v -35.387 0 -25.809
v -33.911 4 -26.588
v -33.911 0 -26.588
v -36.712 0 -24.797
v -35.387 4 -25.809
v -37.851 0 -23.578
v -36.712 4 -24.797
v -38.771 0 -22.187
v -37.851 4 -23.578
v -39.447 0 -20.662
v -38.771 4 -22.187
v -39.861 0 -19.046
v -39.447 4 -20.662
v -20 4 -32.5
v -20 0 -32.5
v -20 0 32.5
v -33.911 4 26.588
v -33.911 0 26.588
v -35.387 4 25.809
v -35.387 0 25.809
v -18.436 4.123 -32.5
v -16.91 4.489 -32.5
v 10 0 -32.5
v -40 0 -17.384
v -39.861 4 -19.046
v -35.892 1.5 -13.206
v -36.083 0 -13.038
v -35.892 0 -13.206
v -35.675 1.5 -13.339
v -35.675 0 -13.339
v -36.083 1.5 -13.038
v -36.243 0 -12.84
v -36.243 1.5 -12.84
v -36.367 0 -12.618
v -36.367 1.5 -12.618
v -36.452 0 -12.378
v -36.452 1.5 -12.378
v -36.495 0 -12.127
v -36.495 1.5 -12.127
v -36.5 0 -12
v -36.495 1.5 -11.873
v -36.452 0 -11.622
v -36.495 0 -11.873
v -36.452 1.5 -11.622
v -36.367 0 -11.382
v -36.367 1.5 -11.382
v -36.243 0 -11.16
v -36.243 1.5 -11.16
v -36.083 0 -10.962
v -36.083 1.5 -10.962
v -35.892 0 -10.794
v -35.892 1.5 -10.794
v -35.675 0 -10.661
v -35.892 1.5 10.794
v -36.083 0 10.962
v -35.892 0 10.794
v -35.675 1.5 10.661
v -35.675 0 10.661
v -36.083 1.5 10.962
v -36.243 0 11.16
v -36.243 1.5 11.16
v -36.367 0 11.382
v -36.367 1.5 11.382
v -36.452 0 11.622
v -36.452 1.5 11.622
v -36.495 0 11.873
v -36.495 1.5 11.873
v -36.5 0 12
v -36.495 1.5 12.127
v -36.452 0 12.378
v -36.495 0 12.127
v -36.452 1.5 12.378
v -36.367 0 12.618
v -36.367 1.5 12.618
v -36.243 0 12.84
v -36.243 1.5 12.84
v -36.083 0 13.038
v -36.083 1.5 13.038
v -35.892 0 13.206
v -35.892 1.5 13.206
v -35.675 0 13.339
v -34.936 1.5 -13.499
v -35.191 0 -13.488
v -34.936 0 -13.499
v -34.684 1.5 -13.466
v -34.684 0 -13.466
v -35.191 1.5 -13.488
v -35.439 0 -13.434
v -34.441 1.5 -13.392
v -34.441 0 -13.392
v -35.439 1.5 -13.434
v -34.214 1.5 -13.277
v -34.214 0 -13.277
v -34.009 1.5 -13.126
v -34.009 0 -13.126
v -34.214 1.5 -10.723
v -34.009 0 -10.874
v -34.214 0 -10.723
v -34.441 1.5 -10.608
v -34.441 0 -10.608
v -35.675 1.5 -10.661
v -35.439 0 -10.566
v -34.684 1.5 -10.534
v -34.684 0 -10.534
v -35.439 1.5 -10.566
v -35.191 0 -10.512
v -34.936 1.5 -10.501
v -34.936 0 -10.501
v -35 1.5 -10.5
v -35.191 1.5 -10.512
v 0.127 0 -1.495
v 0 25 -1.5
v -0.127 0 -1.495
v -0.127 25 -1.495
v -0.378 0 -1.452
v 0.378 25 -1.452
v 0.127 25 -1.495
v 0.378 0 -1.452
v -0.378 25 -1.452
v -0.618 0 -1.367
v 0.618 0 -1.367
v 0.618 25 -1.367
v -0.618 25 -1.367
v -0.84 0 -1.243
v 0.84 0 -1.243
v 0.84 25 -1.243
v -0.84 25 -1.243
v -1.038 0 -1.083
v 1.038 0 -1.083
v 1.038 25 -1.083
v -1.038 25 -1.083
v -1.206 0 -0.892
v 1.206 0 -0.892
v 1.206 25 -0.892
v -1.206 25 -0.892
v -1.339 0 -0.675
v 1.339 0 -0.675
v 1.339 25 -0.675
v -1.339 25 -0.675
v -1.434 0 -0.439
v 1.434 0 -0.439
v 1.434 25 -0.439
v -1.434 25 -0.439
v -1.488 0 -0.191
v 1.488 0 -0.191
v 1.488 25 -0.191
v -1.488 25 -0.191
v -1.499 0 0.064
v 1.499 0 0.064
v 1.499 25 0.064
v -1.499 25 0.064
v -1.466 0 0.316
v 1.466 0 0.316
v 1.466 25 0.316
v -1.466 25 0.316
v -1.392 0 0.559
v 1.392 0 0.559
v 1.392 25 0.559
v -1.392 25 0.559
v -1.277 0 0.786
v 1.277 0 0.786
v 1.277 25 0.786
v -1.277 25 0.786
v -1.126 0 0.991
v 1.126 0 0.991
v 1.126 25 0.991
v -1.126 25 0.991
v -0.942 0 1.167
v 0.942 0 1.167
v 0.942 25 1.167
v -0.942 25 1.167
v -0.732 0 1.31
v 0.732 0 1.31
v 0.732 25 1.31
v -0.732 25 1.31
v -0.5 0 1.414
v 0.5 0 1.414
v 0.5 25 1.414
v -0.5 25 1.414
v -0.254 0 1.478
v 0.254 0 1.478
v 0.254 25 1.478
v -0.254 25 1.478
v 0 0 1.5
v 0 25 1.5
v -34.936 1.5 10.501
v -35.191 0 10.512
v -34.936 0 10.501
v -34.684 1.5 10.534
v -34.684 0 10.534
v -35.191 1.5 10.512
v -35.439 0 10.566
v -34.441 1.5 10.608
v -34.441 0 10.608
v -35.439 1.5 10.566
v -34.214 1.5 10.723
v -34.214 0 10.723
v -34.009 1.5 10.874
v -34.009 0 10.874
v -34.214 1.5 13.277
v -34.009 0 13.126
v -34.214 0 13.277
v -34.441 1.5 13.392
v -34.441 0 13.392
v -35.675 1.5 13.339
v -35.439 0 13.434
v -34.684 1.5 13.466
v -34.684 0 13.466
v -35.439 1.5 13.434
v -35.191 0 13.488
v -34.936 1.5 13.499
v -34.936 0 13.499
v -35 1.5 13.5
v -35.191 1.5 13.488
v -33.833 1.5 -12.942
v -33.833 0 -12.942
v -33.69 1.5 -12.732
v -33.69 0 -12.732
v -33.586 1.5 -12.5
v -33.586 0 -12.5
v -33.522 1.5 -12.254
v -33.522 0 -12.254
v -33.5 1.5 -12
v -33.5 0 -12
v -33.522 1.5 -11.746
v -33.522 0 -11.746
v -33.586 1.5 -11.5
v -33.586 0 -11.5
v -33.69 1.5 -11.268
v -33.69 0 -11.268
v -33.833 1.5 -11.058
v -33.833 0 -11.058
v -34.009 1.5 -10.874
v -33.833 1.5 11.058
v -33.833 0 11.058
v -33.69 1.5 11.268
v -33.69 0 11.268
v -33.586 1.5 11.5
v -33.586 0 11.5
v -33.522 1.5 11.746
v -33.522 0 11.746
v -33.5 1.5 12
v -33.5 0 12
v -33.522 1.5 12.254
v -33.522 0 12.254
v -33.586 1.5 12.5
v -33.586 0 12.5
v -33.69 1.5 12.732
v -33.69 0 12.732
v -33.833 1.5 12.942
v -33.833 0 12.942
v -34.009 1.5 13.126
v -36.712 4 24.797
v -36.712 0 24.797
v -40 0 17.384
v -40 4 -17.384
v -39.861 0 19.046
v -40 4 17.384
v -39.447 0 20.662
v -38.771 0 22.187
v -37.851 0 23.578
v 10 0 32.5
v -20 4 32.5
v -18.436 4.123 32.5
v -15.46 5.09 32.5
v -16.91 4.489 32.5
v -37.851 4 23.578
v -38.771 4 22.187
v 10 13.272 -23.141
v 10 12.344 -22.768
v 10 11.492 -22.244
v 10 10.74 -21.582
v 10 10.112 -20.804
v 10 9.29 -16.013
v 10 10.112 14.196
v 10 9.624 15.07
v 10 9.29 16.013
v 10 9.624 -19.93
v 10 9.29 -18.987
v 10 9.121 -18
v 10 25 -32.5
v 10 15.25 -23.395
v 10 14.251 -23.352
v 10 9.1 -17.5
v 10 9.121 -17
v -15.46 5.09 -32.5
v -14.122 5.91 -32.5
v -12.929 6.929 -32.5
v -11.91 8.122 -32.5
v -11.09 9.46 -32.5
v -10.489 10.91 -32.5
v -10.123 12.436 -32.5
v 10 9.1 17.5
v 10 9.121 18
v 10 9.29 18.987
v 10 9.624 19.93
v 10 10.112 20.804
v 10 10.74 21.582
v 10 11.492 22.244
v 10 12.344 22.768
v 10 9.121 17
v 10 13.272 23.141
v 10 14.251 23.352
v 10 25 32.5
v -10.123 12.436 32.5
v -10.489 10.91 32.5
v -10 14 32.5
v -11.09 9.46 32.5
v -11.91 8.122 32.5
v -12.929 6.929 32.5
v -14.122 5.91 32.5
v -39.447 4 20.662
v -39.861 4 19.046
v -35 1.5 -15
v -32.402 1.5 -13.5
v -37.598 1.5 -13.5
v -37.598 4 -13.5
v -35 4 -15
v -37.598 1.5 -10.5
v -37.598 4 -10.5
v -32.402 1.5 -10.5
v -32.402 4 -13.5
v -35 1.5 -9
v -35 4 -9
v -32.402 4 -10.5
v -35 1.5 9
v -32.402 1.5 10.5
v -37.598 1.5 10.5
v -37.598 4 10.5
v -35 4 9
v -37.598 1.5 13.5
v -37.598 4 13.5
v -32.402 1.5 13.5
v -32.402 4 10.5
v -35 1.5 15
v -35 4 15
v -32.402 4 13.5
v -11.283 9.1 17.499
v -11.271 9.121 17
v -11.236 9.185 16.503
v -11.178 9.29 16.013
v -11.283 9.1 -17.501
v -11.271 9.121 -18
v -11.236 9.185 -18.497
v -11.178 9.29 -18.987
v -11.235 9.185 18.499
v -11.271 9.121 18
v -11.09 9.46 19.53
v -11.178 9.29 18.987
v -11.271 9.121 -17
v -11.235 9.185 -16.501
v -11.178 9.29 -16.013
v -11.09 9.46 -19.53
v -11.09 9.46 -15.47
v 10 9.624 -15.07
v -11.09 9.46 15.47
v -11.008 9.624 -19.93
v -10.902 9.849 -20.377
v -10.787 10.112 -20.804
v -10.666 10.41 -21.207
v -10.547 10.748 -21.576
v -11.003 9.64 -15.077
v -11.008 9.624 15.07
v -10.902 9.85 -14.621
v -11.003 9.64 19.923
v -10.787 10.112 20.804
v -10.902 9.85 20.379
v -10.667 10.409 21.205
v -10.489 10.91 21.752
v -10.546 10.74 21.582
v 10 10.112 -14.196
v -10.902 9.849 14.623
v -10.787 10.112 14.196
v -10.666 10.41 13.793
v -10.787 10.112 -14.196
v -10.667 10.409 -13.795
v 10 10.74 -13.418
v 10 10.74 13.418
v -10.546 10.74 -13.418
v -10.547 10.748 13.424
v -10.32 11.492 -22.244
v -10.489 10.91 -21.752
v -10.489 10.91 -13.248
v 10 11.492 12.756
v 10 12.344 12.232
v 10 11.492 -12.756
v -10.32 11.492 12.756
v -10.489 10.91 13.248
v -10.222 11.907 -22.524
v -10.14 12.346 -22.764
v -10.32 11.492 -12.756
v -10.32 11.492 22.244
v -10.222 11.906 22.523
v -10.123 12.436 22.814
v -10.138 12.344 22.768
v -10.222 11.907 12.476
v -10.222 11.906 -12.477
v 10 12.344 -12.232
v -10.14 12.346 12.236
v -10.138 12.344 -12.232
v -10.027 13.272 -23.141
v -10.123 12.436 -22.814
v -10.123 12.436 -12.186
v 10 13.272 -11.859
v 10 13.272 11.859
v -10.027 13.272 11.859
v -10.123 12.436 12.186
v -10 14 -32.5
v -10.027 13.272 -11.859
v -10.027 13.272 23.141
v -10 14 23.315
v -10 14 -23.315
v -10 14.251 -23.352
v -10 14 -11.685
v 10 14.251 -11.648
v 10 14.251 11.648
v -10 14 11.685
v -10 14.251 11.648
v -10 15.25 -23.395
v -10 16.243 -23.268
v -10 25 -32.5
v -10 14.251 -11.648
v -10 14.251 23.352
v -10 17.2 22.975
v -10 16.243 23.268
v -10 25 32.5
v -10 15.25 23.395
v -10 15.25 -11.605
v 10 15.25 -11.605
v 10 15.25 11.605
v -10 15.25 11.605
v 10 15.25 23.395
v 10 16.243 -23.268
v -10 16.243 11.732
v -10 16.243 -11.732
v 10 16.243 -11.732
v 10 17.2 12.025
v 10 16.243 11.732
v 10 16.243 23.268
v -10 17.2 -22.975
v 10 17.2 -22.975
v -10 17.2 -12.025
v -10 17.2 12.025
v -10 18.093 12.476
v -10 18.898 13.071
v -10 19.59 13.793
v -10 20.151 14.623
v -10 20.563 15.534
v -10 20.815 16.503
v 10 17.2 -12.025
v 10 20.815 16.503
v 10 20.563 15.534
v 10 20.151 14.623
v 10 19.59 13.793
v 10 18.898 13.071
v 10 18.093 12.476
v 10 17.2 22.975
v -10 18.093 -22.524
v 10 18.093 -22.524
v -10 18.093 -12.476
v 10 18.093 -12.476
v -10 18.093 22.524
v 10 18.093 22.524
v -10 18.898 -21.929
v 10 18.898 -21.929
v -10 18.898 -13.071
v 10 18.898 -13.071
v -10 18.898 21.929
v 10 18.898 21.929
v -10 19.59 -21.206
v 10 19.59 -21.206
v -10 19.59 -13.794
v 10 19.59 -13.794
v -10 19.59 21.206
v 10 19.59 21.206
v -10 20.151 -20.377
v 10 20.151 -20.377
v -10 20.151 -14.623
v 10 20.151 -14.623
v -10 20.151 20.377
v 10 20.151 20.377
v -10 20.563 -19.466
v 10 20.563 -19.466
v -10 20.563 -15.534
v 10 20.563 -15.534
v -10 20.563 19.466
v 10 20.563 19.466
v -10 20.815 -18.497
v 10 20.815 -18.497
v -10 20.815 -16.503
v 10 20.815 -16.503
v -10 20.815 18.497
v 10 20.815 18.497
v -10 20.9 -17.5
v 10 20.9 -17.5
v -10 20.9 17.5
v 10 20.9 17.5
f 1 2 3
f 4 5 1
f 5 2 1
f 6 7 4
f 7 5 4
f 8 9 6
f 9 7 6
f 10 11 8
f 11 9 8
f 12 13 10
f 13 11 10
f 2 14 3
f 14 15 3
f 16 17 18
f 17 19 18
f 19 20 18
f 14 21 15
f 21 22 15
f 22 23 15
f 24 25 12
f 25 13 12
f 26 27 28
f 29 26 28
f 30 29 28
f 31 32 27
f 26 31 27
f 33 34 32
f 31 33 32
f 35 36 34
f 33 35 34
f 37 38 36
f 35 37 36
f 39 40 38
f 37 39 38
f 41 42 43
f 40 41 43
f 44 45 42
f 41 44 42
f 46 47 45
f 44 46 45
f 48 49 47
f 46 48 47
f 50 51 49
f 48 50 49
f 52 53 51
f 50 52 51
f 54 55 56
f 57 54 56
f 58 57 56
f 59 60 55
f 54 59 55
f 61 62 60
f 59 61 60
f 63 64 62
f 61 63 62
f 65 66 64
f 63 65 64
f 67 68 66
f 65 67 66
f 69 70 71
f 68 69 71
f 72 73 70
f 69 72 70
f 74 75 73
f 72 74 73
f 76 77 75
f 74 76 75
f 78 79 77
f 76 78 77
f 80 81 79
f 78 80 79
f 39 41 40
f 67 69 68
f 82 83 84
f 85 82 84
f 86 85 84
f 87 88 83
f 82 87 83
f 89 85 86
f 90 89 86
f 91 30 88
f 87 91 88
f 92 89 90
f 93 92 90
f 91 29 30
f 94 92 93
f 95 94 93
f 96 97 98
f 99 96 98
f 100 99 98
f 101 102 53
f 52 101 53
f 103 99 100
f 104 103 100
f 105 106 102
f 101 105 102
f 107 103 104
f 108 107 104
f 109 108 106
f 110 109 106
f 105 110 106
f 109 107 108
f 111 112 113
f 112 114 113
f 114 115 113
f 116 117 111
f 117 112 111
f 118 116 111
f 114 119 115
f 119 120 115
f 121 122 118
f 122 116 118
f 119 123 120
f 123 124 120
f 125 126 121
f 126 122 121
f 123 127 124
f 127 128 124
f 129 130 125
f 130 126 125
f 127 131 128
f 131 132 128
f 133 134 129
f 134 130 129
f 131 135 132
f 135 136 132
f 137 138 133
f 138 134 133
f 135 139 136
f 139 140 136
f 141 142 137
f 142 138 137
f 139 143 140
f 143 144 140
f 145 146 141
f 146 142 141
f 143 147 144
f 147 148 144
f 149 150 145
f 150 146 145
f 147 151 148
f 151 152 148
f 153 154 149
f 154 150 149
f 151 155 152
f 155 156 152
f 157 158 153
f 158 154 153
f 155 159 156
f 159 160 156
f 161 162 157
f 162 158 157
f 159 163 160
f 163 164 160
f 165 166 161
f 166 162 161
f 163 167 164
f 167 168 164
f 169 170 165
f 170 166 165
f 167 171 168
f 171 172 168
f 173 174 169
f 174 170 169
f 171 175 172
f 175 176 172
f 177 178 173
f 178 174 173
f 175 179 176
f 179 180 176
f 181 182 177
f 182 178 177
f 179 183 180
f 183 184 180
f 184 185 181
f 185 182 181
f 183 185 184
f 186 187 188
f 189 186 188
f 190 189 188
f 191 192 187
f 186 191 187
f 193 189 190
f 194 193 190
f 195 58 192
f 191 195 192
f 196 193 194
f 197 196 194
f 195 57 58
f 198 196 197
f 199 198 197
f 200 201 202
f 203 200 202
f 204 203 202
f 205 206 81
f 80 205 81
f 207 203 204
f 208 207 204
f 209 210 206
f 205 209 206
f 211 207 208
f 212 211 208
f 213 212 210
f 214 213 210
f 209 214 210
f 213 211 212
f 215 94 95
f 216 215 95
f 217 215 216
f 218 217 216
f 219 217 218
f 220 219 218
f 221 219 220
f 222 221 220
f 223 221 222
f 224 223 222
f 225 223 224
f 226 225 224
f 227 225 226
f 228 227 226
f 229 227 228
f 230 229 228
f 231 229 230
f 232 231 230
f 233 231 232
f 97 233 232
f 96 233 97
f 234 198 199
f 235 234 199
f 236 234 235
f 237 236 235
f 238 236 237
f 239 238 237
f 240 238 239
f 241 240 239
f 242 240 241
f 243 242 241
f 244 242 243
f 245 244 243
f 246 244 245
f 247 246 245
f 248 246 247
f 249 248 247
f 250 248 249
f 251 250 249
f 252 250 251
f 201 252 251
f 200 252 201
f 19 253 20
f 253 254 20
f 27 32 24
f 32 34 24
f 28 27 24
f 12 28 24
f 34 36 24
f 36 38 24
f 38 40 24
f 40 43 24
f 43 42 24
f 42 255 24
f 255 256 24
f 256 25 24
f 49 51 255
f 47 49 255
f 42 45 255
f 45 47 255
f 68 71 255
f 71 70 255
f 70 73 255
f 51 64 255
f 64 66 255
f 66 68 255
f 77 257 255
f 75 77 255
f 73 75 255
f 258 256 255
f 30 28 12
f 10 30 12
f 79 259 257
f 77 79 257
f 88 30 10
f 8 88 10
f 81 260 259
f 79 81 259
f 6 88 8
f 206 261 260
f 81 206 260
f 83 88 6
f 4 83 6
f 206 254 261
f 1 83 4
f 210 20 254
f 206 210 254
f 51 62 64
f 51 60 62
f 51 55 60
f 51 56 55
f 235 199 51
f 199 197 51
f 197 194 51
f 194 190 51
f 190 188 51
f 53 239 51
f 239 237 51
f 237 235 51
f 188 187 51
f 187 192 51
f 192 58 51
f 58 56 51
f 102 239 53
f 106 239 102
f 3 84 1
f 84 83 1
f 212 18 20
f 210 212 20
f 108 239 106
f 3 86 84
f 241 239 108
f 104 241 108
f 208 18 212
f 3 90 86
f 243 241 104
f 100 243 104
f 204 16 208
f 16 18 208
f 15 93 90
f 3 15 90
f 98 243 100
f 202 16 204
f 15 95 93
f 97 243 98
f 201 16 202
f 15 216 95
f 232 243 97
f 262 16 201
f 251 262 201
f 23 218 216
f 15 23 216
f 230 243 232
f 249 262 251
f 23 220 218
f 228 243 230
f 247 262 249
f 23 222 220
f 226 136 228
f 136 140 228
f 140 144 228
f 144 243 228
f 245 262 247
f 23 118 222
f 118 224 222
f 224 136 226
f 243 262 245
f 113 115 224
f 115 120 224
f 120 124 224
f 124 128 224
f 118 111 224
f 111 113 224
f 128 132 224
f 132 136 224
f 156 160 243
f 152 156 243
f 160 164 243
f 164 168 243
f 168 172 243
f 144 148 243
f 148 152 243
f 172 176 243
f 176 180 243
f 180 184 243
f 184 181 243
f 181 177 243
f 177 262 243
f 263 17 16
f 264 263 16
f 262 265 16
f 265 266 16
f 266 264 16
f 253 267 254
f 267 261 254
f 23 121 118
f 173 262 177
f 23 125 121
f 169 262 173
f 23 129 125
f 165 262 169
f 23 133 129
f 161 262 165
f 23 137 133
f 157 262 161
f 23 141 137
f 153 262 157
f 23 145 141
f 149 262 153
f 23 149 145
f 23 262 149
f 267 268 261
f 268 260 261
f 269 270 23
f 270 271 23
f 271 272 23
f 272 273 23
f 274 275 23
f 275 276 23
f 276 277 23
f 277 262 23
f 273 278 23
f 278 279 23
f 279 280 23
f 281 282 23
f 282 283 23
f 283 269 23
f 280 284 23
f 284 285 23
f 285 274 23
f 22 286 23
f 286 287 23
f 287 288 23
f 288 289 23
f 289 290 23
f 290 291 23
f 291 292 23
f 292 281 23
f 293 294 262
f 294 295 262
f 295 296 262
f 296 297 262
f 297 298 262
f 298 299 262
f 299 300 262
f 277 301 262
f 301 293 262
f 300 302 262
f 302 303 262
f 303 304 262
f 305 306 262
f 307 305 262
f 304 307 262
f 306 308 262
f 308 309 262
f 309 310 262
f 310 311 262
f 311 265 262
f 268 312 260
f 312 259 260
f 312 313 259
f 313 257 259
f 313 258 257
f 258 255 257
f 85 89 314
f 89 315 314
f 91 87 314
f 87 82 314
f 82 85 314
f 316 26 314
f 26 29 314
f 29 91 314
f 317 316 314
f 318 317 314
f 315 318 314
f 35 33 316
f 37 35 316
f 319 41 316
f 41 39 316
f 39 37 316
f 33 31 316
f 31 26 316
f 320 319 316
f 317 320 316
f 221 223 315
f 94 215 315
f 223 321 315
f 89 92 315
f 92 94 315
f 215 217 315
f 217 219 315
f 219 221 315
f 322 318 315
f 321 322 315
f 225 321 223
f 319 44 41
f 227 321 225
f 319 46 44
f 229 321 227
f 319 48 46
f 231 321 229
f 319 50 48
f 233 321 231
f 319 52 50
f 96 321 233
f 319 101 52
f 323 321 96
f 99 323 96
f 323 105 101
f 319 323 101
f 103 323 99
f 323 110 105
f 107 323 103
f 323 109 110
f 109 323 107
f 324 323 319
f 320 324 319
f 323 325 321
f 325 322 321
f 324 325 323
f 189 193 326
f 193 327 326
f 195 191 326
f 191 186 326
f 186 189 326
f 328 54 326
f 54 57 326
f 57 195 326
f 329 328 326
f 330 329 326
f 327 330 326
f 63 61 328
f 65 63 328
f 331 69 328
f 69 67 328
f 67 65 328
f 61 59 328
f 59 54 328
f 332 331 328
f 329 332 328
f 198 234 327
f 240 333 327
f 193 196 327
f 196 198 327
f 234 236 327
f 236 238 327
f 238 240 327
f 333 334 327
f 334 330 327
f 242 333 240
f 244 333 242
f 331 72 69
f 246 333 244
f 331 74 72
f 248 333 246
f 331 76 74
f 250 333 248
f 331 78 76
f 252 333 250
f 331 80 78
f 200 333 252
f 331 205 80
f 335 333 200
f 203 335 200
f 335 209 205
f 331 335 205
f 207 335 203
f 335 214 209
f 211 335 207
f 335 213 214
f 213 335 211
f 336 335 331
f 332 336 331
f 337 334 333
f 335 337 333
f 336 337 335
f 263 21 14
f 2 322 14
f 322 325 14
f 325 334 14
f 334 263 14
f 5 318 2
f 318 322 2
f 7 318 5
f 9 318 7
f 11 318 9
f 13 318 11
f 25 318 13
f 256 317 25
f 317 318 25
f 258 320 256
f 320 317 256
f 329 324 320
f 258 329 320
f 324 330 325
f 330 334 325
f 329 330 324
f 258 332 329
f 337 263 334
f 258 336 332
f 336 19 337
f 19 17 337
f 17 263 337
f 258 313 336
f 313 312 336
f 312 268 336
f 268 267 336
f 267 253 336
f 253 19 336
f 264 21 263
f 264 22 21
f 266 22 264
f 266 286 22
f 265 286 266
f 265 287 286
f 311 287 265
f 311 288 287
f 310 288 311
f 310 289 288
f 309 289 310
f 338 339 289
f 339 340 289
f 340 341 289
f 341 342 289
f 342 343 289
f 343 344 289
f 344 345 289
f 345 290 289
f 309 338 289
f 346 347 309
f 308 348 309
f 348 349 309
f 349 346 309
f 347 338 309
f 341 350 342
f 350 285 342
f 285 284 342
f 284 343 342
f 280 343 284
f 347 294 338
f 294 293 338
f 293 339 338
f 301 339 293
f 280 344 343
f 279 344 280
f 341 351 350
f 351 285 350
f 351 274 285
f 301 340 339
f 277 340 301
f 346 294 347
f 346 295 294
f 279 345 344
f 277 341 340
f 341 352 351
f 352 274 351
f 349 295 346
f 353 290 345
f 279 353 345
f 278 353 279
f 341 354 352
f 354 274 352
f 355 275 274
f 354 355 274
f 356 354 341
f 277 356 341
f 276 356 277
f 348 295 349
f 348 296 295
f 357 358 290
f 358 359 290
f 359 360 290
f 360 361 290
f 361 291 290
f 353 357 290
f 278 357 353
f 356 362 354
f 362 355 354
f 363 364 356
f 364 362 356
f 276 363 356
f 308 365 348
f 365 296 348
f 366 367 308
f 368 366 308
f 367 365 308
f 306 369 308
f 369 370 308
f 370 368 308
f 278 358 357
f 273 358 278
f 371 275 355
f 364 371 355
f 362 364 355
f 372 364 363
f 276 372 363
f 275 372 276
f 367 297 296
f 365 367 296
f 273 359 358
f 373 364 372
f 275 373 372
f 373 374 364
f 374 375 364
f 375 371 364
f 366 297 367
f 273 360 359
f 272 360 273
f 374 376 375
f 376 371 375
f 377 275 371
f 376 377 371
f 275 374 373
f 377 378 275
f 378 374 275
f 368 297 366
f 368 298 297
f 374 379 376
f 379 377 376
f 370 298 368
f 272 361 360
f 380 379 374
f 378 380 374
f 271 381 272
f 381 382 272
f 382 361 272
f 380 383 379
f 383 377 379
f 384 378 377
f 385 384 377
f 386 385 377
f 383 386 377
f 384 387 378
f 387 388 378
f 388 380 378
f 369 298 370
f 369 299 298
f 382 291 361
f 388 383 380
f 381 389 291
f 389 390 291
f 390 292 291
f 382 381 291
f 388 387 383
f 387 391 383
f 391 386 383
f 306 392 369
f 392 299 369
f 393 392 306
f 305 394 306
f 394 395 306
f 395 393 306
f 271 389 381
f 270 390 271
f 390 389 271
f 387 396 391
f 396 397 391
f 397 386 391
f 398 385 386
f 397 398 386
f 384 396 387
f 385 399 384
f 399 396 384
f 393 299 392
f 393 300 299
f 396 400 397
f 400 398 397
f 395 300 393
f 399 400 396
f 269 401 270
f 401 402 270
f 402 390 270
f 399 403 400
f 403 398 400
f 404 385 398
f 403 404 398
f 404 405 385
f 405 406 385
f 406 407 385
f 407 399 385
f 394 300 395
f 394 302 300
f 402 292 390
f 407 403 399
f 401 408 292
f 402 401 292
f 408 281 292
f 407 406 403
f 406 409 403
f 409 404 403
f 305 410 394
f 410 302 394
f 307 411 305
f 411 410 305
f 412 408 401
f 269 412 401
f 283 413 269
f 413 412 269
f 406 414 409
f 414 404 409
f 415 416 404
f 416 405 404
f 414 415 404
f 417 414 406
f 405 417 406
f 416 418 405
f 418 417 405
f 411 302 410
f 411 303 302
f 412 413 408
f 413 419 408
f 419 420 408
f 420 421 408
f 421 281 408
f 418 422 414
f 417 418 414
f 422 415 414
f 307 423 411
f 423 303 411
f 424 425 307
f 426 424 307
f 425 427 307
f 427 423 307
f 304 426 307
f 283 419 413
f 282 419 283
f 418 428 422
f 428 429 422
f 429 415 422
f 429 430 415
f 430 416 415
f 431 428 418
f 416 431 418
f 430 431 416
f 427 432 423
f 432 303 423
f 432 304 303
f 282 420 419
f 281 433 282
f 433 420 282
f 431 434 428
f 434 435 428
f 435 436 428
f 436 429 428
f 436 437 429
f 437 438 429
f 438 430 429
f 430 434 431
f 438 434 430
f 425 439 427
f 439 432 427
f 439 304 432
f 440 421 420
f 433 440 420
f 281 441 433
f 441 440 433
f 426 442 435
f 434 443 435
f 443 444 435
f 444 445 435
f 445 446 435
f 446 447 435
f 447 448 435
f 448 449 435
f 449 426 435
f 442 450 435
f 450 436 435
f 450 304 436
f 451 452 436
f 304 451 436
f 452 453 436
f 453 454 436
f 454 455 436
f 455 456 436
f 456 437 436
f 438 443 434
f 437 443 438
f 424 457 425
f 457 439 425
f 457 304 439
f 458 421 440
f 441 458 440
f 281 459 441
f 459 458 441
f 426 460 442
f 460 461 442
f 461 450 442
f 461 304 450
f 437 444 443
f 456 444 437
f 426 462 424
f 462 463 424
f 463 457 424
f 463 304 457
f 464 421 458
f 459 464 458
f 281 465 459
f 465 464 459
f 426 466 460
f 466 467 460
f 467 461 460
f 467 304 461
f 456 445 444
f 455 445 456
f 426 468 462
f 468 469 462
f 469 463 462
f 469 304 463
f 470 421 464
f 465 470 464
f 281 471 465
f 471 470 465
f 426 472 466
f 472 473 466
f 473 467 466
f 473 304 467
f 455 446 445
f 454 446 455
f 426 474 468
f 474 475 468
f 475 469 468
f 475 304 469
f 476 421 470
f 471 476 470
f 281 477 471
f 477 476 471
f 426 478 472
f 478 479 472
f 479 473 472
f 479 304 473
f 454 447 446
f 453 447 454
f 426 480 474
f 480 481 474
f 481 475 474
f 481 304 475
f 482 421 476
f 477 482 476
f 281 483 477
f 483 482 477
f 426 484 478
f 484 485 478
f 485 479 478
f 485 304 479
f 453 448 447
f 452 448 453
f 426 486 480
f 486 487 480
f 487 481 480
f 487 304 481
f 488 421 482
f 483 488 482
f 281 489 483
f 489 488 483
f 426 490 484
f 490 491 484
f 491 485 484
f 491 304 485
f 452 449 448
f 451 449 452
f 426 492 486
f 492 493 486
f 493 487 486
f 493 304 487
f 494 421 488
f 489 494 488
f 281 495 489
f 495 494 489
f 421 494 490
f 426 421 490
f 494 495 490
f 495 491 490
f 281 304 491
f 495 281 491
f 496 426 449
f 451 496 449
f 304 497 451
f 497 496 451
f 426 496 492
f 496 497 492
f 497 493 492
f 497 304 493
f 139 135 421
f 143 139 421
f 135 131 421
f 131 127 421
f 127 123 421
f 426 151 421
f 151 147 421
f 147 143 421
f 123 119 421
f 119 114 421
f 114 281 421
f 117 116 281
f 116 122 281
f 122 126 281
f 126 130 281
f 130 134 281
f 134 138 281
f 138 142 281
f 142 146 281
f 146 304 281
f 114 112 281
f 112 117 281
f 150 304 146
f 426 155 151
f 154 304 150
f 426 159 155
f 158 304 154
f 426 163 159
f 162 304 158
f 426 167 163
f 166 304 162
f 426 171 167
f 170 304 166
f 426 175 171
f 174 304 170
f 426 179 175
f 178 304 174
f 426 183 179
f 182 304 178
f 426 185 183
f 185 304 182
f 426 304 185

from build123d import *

# Parameters (mm, degrees)
BOSS_EXTRUDE1_DEPTH     = 32.5
CUT_EXTRUDE1_DEPTH      = 65.662585782
CUT_EXTRUDE1_DEPTH_BACK = 65.662585782
SKETCH2_R               = 5.9
CUT_EXTRUDE2_DEPTH      = 58.282196244
CUT_EXTRUDE2_DEPTH_BACK = 58.282196244
SKETCH3_R               = 1.5
CUT_EXTRUDE3_DEPTH      = 58.282196244
CUT_EXTRUDE3_DEPTH_BACK = 58.282196244
SKETCH4_R               = 1.5
CUT_EXTRUDE4_DEPTH      = 2.5
CUT_EXTRUDE5_DEPTH      = 56.652942478
CUT_EXTRUDE5_DEPTH_BACK = 56.652942478
FILLET1_R               = 10


with BuildPart() as part:
    # Sketch1 → Boss-Extrude1 (new, symmetric)
    with BuildSketch(Plane.XY):
        with BuildLine():
            Line((-40, 0), (-40, 4))
            Line((-40, 4), (-20, 4))
            ThreePointArc((-20, 4), (-12.928932188, 6.928932188), (-10, 14))
            Line((-10, 14), (-10, 25))
            Line((-10, 25), (10, 25))
            Line((10, 25), (10, 14))
            Line((10, 14), (10, 0))
            Line((10, 0), (-40, 0))
        make_face()
    extrude(amount=BOSS_EXTRUDE1_DEPTH, both=True)

    # Sketch2 → Cut-Extrude1 (cut, two sides: drawn at the far end of the back side and taken through both)
    with BuildSketch(Plane(origin=(10, 0, 0), x_dir=(0, 0, -1), z_dir=(1, 0, 0)).offset(-CUT_EXTRUDE1_DEPTH_BACK)):
        with Locations(Location((-17.5, 15, 0), (0, 0, 350.241743405))):
            Circle(SKETCH2_R)
        with Locations(Location((17.5, 15, 0), (0, 0, 350.241743405))):
            Circle(SKETCH2_R)
    extrude(amount=CUT_EXTRUDE1_DEPTH + CUT_EXTRUDE1_DEPTH_BACK, mode=Mode.SUBTRACT)

    # Sketch3 → Cut-Extrude2 (cut, two sides: drawn at the far end of the back side and taken through both)
    with BuildSketch(Plane.XZ.offset(-CUT_EXTRUDE2_DEPTH_BACK)):
        with Locations((-35, 12)):
            Circle(SKETCH3_R)
        with Locations((-35, -12)):
            Circle(SKETCH3_R)
    extrude(amount=CUT_EXTRUDE2_DEPTH + CUT_EXTRUDE2_DEPTH_BACK, mode=Mode.SUBTRACT)

    # Sketch4 → Cut-Extrude3 (cut, two sides: drawn at the far end of the back side and taken through both)
    with BuildSketch(Plane(origin=(0, 25, 0), x_dir=(1, 0, 0), z_dir=(0, 1, 0)).offset(-CUT_EXTRUDE3_DEPTH_BACK)):
        with Locations(Location((0, 0, 0), (0, 0, 270))):
            Circle(SKETCH4_R)
    extrude(amount=CUT_EXTRUDE3_DEPTH + CUT_EXTRUDE3_DEPTH_BACK, mode=Mode.SUBTRACT)

    # Sketch5 → Cut-Extrude4 (cut)
    with BuildSketch(Plane(origin=(0, 4, 0), x_dir=(1, 0, 0), z_dir=(0, 1, 0))):
        Polygon((-32.401923789, -10.5), (-35, -9), (-37.598076211, -10.5), (-37.598076211, -13.5), (-35, -15), (-32.401923789, -13.5), align=None)
        Polygon((-32.401923789, 10.5), (-32.401923789, 13.5), (-35, 15), (-37.598076211, 13.5), (-37.598076211, 10.5), (-35, 9), align=None)
    extrude(amount=-CUT_EXTRUDE4_DEPTH, mode=Mode.SUBTRACT)

    # Sketch6 → Cut-Extrude5 (cut, two sides: drawn at the far end of the back side and taken through both)
    with BuildSketch(Plane(origin=(0, 4, 0), x_dir=(1, 0, 0), z_dir=(0, 1, 0)).offset(-CUT_EXTRUDE5_DEPTH_BACK)):
        Polygon((-20, -32.5), (-40, -24), (-40, -32.5), align=None)
        Polygon((-20, 32.5), (-40, 24), (-40, 32.5), align=None)
    extrude(amount=CUT_EXTRUDE5_DEPTH + CUT_EXTRUDE5_DEPTH_BACK, mode=Mode.SUBTRACT)

    # Fillet1
    fillet1_edges = [part.edges().sort_by_distance(p)[0] for p in [
        (-40, 2, 24),
        (-40, 2, -24),
    ]]
    fillet(fillet1_edges, radius=FILLET1_R)


solid = part.part
